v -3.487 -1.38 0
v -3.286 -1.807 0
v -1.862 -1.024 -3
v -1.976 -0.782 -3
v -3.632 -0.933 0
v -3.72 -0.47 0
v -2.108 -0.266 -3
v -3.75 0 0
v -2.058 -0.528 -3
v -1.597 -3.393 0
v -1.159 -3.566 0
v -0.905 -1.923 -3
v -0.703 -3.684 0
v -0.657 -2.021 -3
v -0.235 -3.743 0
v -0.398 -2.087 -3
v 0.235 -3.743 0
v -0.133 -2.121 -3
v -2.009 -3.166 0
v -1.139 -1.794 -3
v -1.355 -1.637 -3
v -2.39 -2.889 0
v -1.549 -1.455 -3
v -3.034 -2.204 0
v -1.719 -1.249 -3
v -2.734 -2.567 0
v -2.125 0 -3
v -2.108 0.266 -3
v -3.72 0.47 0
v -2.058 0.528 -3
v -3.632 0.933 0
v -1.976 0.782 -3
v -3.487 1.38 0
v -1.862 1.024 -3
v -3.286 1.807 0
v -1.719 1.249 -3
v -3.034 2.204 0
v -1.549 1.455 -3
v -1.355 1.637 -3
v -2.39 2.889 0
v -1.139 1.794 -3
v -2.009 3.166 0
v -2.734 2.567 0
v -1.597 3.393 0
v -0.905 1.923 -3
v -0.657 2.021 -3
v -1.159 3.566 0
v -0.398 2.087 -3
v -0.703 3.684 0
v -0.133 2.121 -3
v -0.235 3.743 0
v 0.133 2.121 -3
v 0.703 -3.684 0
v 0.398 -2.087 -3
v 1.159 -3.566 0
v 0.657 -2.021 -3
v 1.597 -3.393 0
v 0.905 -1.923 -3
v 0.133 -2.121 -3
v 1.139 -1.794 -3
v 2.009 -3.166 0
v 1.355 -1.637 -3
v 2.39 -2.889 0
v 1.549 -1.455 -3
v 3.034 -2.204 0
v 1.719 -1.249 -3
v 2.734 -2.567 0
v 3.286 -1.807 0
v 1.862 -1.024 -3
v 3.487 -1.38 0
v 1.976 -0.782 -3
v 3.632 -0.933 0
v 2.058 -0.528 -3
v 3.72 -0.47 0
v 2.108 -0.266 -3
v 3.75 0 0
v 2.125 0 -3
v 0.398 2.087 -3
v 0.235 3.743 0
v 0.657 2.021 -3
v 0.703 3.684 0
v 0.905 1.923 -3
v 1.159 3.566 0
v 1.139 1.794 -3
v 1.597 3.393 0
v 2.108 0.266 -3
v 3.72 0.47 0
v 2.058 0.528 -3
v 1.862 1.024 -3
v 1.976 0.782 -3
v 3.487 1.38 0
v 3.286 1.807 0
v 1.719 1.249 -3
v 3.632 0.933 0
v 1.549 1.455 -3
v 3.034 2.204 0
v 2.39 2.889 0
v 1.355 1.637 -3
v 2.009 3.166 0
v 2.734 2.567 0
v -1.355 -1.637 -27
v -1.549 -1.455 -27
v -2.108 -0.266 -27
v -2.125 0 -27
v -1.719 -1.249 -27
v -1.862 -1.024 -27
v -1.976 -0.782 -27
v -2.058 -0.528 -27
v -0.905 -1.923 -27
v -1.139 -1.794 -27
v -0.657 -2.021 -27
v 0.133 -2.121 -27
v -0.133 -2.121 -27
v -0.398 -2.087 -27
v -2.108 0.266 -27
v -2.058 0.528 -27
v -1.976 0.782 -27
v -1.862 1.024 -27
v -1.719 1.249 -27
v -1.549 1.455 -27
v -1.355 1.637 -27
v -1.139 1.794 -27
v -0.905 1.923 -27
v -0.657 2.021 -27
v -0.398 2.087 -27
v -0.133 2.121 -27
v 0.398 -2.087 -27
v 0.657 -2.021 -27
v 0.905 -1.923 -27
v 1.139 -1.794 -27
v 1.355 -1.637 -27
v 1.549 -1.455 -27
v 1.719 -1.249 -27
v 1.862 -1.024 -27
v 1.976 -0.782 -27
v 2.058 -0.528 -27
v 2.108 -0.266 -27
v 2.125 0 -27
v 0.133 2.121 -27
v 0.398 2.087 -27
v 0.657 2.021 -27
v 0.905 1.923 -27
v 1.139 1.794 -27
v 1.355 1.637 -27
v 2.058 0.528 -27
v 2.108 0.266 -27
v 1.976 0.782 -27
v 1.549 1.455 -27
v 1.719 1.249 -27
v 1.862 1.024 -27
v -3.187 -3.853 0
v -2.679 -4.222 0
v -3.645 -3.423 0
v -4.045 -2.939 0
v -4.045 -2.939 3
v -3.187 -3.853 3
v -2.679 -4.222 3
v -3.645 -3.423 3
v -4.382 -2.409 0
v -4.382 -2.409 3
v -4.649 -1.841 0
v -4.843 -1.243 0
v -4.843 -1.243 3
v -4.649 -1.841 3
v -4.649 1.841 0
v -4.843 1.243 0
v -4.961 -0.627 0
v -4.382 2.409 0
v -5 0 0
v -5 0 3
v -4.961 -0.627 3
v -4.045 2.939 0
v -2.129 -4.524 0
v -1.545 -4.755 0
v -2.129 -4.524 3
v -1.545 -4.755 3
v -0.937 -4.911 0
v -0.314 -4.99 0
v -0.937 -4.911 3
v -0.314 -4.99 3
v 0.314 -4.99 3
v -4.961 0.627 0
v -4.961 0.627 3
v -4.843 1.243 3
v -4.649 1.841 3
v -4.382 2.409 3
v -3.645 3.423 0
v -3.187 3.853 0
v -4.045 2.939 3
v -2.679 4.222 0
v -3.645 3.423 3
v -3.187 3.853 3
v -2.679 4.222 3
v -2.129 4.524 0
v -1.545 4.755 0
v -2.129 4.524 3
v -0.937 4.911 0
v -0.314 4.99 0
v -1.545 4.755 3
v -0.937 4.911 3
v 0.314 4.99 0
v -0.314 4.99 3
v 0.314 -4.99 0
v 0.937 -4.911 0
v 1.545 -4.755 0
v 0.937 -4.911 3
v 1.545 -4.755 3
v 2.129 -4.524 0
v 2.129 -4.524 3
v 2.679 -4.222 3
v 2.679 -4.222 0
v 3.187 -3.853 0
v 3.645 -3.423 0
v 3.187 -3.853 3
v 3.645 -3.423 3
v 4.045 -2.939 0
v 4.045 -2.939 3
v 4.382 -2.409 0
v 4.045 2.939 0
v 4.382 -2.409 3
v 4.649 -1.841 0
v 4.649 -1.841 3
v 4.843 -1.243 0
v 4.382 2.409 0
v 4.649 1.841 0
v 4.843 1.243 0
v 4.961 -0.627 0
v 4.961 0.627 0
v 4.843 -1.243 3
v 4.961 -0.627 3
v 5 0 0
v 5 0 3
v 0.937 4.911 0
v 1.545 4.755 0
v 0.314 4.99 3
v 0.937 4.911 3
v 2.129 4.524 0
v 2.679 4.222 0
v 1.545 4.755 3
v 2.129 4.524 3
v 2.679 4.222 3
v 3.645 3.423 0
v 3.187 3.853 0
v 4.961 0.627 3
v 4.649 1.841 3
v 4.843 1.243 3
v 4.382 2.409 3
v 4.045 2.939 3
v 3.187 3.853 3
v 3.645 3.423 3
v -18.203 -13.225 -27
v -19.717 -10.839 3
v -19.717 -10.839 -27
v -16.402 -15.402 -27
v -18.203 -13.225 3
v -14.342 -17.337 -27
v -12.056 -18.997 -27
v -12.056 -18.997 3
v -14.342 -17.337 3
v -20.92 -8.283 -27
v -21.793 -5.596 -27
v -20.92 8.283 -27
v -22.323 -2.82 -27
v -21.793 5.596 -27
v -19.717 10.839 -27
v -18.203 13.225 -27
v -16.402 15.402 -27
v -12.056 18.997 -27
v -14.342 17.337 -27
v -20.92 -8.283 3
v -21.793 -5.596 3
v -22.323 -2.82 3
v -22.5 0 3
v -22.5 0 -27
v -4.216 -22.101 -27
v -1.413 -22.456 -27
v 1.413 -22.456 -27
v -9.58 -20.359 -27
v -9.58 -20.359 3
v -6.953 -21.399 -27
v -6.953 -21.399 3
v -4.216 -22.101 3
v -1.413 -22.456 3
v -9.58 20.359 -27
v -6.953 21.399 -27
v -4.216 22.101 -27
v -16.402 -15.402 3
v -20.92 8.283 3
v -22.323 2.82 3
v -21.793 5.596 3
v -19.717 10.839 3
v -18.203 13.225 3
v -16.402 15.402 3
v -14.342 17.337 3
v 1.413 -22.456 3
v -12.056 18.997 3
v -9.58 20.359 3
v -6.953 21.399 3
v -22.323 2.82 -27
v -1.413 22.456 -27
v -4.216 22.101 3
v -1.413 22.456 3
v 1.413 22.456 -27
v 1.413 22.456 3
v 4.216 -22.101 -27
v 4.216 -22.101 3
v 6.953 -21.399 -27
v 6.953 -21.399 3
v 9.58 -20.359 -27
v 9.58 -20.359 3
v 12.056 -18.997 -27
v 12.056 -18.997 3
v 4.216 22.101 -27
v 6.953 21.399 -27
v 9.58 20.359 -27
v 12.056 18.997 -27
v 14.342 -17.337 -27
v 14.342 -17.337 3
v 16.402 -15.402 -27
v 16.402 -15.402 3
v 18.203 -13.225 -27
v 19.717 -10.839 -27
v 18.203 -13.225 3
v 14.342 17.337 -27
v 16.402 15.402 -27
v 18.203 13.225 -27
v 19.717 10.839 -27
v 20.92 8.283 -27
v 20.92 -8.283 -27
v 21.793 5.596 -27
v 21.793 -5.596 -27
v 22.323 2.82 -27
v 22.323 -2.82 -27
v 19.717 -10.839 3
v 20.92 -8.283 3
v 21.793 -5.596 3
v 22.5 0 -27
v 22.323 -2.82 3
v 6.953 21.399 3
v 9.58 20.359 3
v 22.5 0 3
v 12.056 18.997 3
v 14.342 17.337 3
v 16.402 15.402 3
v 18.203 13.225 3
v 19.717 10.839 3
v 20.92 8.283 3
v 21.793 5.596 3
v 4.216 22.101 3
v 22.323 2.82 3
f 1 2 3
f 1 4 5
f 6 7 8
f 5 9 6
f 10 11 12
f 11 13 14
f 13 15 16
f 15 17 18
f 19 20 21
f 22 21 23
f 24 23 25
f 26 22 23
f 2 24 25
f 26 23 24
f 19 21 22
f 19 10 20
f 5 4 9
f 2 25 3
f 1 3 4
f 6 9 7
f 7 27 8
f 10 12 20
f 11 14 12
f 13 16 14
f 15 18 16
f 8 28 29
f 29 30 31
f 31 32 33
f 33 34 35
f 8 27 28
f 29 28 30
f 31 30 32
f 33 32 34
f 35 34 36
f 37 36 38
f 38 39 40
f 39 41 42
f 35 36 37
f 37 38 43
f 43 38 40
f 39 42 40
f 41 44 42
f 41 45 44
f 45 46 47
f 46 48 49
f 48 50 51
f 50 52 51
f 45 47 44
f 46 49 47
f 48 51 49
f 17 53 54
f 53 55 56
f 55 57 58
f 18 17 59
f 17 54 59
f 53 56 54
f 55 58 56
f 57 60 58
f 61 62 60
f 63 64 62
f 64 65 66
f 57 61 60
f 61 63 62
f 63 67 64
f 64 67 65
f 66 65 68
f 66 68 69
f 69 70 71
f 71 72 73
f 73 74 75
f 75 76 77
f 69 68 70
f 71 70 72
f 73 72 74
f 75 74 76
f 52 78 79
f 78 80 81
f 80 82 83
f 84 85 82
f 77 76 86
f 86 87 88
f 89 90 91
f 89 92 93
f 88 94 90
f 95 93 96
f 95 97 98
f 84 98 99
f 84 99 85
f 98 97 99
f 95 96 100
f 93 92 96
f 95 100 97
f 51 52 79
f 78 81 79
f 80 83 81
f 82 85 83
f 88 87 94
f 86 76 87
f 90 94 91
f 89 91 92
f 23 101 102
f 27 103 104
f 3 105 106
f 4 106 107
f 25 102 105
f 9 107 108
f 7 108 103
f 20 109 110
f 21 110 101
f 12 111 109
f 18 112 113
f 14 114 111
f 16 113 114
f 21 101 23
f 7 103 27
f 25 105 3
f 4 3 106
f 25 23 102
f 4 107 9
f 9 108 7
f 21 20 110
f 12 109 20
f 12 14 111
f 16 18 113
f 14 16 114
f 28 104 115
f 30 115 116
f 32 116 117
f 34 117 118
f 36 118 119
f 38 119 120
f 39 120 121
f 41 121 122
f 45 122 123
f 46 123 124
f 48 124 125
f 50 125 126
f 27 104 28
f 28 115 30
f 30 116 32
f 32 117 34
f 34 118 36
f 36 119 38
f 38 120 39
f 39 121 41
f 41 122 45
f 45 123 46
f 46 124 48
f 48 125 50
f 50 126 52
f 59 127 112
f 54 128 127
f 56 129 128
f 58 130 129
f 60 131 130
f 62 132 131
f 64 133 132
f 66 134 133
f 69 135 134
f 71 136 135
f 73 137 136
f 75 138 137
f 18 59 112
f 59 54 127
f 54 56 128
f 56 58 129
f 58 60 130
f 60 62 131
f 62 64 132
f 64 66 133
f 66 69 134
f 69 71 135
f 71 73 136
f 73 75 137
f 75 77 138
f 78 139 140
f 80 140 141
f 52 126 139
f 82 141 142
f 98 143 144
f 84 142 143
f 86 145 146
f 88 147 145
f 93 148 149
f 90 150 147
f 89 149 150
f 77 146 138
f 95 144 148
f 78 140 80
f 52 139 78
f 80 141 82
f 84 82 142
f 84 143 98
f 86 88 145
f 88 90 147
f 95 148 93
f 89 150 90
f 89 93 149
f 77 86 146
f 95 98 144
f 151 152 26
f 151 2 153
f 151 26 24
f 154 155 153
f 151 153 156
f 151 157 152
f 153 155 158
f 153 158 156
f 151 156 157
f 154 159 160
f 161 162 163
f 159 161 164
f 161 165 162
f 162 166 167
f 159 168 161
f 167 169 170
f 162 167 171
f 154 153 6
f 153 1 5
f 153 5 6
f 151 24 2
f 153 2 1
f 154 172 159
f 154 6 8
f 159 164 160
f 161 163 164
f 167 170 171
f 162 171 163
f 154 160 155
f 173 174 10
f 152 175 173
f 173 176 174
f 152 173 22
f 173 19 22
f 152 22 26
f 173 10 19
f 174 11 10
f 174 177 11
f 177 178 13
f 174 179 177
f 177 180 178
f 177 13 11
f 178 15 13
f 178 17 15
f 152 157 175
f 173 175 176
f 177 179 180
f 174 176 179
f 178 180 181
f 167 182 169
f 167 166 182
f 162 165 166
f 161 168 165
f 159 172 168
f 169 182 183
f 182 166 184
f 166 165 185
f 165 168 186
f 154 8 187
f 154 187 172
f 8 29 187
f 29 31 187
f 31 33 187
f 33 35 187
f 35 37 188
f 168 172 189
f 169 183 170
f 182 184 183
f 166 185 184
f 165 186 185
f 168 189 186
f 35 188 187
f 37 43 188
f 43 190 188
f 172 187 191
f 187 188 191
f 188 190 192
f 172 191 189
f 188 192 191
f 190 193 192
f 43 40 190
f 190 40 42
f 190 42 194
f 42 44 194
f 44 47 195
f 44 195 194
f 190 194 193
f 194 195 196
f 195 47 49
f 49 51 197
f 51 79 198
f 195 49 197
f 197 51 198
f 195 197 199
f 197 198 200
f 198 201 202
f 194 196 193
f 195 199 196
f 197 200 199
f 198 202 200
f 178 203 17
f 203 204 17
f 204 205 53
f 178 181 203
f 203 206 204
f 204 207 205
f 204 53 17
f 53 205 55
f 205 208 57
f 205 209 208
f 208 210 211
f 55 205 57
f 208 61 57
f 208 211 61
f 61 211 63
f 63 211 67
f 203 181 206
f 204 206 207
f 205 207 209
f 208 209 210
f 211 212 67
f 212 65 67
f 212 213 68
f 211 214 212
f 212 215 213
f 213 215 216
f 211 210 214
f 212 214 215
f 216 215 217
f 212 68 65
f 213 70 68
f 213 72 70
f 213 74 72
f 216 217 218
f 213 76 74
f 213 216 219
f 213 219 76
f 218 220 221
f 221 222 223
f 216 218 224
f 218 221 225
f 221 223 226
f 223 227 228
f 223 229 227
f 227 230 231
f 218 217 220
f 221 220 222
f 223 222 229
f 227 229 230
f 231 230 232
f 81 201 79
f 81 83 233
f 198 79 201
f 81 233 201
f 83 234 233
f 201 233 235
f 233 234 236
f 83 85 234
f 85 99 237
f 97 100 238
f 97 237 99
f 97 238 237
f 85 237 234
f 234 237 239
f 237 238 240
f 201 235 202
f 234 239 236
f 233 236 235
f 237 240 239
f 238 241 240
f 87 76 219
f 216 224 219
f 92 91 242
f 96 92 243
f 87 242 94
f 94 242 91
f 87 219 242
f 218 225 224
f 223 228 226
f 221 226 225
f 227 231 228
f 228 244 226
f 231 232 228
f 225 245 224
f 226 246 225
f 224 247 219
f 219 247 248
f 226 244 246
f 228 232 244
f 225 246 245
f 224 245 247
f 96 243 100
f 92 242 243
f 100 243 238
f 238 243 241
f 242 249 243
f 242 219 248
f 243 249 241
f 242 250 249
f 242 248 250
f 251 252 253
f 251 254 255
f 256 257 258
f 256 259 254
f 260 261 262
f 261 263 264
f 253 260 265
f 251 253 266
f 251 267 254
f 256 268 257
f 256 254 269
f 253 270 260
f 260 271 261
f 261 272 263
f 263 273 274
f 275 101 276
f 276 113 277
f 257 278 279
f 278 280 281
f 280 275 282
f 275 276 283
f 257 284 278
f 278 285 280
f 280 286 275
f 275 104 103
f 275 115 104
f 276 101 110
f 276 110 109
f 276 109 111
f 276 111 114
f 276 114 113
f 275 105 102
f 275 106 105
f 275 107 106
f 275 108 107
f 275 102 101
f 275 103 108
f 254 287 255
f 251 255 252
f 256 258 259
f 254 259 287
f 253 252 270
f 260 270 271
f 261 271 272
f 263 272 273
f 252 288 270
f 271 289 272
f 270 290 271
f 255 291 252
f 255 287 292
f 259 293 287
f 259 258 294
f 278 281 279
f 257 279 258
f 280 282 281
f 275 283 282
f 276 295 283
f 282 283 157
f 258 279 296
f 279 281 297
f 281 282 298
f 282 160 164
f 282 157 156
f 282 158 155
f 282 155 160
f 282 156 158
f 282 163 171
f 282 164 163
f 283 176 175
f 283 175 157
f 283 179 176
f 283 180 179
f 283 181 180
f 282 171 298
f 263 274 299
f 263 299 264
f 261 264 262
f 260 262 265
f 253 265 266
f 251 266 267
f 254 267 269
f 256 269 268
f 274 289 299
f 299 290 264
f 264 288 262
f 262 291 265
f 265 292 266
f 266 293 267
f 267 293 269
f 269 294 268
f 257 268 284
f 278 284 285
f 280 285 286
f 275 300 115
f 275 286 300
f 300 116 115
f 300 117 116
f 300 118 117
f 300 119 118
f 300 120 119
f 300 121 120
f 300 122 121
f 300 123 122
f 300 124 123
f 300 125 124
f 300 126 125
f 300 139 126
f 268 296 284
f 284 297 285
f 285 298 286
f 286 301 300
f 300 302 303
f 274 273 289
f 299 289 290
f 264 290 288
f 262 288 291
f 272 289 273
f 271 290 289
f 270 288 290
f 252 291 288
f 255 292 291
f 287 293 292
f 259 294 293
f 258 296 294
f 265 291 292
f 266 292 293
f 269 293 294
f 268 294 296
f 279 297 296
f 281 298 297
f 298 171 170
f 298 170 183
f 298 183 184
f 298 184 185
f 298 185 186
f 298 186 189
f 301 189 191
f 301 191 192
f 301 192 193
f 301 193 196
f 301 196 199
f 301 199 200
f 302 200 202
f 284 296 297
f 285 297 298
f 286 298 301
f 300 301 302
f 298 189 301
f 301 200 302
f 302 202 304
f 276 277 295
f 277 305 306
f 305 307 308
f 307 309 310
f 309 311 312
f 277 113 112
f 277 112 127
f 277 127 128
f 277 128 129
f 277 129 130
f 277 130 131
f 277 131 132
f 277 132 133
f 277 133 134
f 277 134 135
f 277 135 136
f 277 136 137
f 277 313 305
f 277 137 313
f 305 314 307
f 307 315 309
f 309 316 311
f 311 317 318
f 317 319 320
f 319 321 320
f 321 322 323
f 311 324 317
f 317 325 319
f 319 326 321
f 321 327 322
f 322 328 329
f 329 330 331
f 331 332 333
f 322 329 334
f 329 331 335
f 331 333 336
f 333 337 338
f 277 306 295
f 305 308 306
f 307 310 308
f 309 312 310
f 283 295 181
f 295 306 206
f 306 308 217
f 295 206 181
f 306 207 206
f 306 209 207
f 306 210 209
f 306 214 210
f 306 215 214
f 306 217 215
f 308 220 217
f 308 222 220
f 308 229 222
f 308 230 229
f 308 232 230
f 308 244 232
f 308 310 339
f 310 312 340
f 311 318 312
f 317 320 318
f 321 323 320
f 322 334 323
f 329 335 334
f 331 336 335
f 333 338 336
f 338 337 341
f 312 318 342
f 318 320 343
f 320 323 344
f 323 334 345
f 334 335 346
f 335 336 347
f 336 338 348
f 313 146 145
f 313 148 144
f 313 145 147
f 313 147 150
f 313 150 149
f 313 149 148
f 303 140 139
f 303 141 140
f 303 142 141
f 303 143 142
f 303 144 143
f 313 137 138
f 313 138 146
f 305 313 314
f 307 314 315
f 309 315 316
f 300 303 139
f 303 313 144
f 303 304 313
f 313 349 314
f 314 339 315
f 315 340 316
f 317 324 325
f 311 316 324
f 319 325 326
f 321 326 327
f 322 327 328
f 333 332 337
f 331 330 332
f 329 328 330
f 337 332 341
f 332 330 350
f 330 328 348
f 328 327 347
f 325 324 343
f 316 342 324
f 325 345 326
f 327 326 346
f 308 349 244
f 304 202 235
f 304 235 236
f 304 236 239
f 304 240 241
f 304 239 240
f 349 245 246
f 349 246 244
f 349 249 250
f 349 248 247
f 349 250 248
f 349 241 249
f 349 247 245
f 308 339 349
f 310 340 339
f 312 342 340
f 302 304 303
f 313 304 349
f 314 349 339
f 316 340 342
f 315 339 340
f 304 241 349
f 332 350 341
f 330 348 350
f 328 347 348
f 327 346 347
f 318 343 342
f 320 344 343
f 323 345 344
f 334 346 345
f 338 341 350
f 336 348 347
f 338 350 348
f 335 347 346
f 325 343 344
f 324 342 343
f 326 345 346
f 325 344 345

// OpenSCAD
$fn = 50;


difference() {
	union() {
		translate(v = [0, 0, -27.0000000000]) {
			cylinder(h = 30, r = 22.5000000000);
		}
	}
	union() {
		translate(v = [0, 0, 0]) {
			rotate(a = [0, 0, 0]) {
				difference() {
					union() {
						translate(v = [0, 0, -30.0000000000]) {
							cylinder(h = 30, r = 2.0000000000);
						}
						translate(v = [0, 0, -3]) {
							cylinder(h = 3, r1 = 2.1250000000, r2 = 3.7500000000);
						}
						translate(v = [0, 0, -30.0000000000]) {
							cylinder(h = 30, r = 2.1250000000);
						}
						translate(v = [0, 0, -30.0000000000]) {
							cylinder(h = 30, r = 2.0000000000);
						}
					}
					union();
				}
			}
		}
		#cylinder(h = 3, r = 5.0000000000);
	}
}
